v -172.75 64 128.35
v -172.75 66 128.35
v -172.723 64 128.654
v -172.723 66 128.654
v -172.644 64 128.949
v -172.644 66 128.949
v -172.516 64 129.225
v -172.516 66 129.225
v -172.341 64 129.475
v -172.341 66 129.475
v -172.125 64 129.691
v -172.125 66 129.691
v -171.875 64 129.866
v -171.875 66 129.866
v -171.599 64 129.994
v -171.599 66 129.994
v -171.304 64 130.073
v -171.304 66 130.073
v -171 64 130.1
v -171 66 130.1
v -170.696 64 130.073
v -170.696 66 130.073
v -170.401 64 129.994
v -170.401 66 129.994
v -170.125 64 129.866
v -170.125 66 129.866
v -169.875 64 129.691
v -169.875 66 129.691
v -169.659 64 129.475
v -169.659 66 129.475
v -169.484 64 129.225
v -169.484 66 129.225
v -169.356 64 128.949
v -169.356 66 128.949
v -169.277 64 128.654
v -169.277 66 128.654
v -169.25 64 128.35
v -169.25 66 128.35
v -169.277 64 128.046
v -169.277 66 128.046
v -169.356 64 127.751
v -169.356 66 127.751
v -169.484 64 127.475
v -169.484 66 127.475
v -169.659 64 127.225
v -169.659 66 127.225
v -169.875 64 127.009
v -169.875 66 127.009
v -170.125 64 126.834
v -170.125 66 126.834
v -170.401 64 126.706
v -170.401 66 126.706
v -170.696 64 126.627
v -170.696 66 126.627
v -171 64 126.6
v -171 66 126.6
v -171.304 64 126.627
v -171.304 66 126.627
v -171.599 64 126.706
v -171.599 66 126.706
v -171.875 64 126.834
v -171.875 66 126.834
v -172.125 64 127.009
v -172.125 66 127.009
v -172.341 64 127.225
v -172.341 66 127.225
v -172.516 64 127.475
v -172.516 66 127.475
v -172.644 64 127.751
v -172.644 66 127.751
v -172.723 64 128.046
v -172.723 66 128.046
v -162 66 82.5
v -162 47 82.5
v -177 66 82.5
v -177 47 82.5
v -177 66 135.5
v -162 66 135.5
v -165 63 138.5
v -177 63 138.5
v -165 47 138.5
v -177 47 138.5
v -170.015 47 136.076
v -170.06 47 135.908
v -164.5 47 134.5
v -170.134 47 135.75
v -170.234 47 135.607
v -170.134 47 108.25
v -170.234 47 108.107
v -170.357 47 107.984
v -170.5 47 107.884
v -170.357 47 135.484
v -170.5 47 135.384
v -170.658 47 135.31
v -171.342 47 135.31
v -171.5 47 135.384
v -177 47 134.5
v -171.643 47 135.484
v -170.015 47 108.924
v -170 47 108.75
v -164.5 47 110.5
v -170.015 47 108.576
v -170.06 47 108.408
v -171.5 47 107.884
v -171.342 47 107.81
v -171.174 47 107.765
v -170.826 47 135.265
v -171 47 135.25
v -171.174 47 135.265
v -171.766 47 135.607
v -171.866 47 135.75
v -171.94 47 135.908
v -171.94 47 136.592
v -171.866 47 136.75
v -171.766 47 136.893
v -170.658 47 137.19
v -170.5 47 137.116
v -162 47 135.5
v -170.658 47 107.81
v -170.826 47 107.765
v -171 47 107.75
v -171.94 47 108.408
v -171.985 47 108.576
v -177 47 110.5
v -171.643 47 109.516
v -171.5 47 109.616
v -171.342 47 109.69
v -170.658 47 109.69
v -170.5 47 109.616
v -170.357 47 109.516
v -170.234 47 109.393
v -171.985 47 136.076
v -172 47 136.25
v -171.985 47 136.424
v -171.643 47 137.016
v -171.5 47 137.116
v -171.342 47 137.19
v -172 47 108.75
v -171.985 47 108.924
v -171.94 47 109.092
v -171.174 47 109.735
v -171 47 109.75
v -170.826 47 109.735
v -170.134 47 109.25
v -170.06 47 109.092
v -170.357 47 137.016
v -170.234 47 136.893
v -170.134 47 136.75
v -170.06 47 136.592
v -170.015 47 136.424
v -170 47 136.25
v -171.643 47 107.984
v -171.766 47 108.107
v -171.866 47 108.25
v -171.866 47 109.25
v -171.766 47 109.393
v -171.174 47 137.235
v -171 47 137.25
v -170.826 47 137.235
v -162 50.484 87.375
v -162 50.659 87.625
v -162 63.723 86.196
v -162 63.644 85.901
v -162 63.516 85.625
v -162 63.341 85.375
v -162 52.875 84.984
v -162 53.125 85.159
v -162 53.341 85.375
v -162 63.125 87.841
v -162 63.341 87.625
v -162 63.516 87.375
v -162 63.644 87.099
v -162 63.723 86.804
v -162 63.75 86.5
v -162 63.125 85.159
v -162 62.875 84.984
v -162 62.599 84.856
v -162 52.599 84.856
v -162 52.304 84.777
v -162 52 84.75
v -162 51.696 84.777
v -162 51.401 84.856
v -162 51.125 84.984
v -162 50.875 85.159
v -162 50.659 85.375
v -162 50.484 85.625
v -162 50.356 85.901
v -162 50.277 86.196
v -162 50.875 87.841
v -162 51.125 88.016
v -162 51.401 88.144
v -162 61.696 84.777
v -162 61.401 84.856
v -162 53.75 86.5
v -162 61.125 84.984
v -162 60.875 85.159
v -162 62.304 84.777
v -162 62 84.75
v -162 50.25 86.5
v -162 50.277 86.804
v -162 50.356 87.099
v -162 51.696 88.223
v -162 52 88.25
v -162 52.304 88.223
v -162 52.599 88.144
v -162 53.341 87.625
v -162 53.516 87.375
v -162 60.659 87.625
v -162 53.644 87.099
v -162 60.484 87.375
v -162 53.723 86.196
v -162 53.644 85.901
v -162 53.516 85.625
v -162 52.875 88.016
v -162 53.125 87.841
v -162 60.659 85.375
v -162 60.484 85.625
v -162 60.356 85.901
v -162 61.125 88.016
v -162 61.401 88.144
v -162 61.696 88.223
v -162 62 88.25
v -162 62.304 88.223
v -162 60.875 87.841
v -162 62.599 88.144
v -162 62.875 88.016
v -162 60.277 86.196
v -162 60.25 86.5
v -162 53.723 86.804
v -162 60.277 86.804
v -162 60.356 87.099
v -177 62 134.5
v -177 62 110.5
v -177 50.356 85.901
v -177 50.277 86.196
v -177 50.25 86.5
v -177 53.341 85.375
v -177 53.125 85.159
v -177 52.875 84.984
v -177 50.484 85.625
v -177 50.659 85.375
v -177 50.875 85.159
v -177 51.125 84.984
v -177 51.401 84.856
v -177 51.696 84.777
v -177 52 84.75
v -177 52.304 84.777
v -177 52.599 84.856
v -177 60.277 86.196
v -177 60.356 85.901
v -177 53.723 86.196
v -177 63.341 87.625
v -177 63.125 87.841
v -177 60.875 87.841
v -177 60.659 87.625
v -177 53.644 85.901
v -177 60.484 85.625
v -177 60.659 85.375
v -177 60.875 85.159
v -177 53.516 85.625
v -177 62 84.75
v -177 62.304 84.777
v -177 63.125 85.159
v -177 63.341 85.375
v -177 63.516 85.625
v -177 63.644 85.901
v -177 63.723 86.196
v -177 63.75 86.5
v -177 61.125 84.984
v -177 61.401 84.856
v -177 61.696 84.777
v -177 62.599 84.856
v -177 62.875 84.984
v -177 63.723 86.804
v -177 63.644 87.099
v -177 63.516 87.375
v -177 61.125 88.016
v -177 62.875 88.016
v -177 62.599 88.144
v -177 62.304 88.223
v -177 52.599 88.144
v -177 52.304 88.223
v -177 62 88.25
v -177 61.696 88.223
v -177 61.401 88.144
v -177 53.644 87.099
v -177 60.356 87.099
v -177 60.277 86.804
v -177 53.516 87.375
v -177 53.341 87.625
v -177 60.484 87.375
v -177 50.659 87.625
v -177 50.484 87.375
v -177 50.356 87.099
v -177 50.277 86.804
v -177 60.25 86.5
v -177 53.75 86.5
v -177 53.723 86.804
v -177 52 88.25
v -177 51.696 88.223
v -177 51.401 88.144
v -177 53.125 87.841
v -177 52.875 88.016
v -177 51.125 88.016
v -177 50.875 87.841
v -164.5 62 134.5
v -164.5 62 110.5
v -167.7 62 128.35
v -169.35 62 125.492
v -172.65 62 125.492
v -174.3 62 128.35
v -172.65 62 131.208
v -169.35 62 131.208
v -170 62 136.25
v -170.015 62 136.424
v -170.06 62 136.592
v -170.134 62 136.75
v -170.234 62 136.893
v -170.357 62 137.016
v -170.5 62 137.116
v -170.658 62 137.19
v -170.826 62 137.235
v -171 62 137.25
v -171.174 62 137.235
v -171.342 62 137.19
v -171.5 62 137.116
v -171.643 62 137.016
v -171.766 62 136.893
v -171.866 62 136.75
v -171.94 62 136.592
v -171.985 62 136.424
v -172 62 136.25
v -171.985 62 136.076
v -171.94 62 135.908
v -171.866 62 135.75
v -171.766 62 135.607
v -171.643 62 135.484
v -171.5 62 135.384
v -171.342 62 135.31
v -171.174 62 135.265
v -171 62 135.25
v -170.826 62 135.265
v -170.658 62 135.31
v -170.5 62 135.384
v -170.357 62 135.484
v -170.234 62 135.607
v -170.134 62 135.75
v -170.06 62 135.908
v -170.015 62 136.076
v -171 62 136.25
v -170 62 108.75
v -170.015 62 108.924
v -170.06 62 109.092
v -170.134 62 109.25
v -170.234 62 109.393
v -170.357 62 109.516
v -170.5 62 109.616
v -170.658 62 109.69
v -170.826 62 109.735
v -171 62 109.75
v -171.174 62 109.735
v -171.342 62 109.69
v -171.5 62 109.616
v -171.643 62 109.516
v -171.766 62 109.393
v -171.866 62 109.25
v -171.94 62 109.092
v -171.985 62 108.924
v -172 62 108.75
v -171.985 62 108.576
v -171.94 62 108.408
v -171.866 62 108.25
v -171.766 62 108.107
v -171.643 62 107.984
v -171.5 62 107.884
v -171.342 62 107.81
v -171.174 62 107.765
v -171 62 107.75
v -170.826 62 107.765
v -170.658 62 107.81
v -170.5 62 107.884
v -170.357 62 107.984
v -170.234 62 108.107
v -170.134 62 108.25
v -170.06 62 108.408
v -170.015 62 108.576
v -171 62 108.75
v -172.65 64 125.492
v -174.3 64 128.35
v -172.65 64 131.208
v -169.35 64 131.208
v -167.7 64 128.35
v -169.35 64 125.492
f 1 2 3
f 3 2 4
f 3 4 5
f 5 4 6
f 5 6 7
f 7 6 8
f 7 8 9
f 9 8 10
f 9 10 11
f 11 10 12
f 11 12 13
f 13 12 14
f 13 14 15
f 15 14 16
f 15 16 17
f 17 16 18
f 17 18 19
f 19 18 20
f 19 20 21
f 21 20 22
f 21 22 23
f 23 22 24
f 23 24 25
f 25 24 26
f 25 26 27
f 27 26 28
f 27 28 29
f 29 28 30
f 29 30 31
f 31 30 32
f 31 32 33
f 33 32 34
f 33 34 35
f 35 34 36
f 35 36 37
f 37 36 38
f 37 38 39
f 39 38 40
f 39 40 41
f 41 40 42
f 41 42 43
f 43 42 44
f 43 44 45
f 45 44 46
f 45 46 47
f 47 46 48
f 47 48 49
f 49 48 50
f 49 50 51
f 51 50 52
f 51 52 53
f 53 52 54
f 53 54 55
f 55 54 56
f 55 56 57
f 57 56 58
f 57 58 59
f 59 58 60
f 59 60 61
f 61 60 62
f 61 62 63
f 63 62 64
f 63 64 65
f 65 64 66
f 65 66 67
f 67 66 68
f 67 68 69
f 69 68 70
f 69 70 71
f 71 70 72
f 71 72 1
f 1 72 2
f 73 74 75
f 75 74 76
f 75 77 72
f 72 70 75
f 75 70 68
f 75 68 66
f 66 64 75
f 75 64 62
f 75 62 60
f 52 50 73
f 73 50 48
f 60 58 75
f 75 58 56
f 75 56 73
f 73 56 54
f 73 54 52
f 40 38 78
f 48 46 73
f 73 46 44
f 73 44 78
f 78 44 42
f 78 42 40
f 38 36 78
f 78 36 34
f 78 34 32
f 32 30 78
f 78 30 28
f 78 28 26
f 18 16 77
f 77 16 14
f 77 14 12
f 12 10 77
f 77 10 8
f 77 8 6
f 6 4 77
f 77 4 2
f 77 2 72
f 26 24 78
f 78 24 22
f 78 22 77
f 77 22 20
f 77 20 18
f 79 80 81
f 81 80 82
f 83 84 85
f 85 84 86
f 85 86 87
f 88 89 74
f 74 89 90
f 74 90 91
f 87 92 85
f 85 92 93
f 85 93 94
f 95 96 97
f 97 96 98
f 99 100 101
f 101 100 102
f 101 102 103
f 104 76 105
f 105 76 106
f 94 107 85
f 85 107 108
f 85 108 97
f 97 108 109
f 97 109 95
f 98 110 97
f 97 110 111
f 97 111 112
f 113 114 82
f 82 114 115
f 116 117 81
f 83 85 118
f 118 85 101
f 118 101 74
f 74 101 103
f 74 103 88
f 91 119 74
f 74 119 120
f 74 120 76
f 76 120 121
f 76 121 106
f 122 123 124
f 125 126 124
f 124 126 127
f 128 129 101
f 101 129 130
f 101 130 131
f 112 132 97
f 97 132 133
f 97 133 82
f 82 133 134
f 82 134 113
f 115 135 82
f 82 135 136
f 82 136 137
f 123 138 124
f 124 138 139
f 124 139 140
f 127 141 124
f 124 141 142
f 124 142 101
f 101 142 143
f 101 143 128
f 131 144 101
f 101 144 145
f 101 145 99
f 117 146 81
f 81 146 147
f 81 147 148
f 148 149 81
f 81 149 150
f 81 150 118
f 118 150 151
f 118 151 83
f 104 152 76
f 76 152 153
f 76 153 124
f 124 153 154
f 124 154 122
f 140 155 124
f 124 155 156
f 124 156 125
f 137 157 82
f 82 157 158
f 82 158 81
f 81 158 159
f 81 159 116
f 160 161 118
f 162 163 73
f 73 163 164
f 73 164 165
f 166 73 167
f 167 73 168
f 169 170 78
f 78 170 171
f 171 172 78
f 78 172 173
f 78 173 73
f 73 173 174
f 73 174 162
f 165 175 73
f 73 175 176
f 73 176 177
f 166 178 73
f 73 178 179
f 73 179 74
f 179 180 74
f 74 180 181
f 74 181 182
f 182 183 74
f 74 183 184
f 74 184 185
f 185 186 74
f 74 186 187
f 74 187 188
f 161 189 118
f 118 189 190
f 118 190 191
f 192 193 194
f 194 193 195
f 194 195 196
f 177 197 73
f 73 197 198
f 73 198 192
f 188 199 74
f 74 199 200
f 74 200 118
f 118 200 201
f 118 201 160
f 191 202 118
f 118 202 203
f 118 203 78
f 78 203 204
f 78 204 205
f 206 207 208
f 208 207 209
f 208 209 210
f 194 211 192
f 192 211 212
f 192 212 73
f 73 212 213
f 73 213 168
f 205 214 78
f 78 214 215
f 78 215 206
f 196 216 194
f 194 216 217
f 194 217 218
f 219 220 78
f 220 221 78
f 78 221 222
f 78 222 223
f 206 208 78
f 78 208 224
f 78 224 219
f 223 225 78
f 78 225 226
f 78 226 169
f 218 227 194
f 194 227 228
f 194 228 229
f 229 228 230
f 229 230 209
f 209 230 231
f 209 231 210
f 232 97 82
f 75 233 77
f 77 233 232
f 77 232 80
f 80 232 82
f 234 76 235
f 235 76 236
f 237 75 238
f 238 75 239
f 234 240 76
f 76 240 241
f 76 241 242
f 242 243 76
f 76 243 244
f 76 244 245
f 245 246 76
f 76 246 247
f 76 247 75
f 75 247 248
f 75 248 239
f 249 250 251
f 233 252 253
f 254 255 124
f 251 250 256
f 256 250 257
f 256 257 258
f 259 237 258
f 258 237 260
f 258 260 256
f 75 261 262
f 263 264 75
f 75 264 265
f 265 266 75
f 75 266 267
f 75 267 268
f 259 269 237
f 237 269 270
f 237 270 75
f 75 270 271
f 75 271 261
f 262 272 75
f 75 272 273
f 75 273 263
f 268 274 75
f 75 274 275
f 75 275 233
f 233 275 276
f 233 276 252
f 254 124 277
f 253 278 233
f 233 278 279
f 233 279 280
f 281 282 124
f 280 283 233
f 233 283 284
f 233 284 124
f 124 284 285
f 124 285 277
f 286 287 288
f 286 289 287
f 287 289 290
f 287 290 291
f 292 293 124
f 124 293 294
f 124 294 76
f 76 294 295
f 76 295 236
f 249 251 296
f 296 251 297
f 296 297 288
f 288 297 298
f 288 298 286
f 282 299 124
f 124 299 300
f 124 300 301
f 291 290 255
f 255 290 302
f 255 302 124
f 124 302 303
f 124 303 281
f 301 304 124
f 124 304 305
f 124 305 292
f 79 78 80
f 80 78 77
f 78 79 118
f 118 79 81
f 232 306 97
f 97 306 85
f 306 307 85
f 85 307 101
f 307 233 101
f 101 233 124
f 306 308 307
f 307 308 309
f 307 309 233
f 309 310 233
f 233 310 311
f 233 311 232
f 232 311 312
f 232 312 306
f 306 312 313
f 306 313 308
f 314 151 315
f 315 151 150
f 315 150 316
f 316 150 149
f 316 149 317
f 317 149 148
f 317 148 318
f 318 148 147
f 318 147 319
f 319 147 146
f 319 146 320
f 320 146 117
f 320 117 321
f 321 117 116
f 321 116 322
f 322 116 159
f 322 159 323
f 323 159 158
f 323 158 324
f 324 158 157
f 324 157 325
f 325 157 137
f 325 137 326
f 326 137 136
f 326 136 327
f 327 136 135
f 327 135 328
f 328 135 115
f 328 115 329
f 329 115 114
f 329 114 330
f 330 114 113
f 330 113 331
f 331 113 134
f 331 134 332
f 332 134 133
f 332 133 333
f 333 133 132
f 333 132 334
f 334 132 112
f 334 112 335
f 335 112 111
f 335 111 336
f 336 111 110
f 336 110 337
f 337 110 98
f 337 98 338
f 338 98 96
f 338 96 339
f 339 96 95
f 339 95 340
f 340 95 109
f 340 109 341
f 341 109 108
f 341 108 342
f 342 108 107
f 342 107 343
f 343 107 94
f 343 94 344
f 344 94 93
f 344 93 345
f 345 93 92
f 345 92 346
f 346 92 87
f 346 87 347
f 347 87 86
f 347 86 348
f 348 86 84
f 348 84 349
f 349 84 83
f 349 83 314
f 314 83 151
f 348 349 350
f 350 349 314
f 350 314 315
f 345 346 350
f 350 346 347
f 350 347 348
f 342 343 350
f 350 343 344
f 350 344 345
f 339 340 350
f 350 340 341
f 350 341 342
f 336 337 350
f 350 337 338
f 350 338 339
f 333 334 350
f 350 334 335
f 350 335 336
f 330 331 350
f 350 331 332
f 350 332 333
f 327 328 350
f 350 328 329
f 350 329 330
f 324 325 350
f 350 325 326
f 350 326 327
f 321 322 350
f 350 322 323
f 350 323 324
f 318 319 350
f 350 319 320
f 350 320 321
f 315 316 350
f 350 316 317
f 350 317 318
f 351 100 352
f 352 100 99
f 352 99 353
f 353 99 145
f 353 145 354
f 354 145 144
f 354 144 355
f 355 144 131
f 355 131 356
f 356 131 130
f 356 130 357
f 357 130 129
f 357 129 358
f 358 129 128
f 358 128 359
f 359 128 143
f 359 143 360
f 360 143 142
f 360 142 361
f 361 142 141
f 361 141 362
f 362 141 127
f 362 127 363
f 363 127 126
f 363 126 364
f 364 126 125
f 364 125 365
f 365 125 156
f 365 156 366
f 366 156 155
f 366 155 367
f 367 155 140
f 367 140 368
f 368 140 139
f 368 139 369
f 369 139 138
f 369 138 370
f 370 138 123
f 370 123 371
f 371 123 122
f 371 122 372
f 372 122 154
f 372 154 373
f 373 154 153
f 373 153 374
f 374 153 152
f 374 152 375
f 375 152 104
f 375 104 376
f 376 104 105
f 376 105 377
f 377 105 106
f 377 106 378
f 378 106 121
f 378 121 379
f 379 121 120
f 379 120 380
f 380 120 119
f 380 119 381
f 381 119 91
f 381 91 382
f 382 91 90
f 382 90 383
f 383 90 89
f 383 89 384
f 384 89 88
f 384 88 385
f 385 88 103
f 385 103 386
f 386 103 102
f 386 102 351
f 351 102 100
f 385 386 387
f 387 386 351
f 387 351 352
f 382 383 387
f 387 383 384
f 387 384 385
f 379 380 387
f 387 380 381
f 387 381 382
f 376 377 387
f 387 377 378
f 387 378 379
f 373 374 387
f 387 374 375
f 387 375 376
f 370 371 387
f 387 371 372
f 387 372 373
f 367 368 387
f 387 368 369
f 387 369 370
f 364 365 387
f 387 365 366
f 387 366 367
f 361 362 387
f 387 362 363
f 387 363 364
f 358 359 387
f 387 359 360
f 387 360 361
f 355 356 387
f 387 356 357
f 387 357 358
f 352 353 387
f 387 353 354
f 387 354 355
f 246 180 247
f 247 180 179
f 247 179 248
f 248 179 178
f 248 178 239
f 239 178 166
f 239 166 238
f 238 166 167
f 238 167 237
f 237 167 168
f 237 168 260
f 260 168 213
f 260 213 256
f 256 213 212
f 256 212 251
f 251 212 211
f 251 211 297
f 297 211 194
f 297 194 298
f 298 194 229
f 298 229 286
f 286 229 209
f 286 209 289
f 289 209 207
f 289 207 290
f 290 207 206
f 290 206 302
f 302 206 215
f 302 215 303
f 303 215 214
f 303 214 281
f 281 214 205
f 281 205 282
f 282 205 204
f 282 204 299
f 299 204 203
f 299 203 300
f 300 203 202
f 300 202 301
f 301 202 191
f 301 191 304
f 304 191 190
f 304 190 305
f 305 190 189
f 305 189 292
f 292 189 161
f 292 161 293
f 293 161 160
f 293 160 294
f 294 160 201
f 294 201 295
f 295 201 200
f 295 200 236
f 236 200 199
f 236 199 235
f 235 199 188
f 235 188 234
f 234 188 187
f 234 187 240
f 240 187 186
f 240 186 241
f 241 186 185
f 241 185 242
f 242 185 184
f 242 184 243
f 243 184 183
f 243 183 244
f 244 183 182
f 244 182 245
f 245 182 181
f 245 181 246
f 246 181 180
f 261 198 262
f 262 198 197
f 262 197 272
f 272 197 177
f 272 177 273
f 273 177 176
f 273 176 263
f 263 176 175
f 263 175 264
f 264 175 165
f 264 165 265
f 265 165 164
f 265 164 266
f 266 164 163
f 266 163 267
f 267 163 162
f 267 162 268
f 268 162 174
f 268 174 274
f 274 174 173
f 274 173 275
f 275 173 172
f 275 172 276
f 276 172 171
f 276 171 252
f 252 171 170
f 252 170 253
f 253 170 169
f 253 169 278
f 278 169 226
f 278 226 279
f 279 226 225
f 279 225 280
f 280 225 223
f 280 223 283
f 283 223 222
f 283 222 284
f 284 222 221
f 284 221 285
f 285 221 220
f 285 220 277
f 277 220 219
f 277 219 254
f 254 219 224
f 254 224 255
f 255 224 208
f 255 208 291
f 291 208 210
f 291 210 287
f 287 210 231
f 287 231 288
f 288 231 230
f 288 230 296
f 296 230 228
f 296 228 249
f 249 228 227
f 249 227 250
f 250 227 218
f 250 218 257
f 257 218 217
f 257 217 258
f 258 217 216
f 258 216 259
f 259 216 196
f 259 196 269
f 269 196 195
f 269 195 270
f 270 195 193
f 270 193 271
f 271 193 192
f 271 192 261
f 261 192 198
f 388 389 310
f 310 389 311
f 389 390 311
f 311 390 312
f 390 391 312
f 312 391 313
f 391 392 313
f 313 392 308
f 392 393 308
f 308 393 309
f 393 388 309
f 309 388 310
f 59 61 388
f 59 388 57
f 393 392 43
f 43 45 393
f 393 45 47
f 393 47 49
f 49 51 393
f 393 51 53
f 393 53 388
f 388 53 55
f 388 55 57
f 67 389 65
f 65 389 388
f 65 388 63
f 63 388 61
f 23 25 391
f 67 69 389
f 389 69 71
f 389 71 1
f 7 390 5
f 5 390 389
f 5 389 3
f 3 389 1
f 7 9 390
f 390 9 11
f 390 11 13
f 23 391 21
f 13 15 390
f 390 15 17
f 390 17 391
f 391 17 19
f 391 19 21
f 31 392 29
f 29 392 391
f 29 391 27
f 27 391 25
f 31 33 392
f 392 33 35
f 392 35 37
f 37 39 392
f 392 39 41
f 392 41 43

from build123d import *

# Parameters (mm, degrees)
CROQUIS1_W              = 19
CROQUIS1_H              = 56
SALIENTE_EXTRUIR1_DEPTH = 15
CHAFL_N1_SIZE           = 3
CROQUIS2_W              = 12.5
CROQUIS2_H              = 24
CORTAR_EXTRUIR1_DEPTH   = 15
CROQUIS3_R              = 1
CORTAR_EXTRUIR2_DEPTH   = 15
CROQUIS8_R              = 1
CORTAR_EXTRUIR3_DEPTH   = 15
CROQUIS9_R              = 1.75
CORTAR_EXTRUIR4_DEPTH   = 16
CORTAR_EXTRUIR5_REACH   = 17
CROQUIS10_R             = 1.75
CROQUIS11_R             = 1.75
CORTAR_EXTRUIR6_DEPTH   = 20
CROQUIS12_R             = 1.75
CORTAR_EXTRUIR7_DEPTH   = 2


with BuildPart() as part:
    # Croquis1 → Saliente-Extruir1 (new body)
    with BuildSketch(Plane(origin=(-177, 0, 0), x_dir=(0, -1, 0), z_dir=(-1, 0, 0))):
        with Locations((-56.5, 110.5)):
            Rectangle(CROQUIS1_W, CROQUIS1_H)
    extrude(amount=-SALIENTE_EXTRUIR1_DEPTH)

    # Chaflán1
    chafl_n1_edges = [part.edges().sort_by_distance(p)[0] for p in [
        (-162, 56.5, 138.5),
        (-169.5, 66, 138.5),
    ]]
    chamfer(chafl_n1_edges, length=CHAFL_N1_SIZE)

    # Croquis2 → Cortar-Extruir1 (cut)
    with BuildSketch(Plane.XZ.offset(-47)):
        with Locations((-170.75, 122.5)):
            Rectangle(CROQUIS2_W, CROQUIS2_H)
    extrude(amount=-CORTAR_EXTRUIR1_DEPTH, mode=Mode.SUBTRACT)

    # Croquis3 → Cortar-Extruir2 (cut)
    with BuildSketch(Plane.XZ.offset(-47)):
        with Locations((-171, 136.25)):
            Circle(CROQUIS3_R)
    extrude(amount=-CORTAR_EXTRUIR2_DEPTH, mode=Mode.SUBTRACT)

    # Croquis8 → Cortar-Extruir3 (cut)
    with BuildSketch(Plane(origin=(0, 47, 0), x_dir=(-1, 0, 0), z_dir=(0, -1, 0))):
        with Locations((171, -108.75)):
            Circle(CROQUIS8_R)
    extrude(amount=-CORTAR_EXTRUIR3_DEPTH, mode=Mode.SUBTRACT)

    # Croquis9 → Cortar-Extruir4 (cut, through all)
    with BuildSketch(Plane(origin=(-162, 0, 0), x_dir=(0, 0, -1), z_dir=(1, 0, 0))):
        with Locations((-86.5, 52)):
            Circle(CROQUIS9_R)
    extrude(amount=-CORTAR_EXTRUIR4_DEPTH, mode=Mode.SUBTRACT)

    # Croquis10 → Cortar-Extruir5 (cut, up to next)
    with BuildSketch(Plane(origin=(-162, 0, 0), x_dir=(0, 0, -1), z_dir=(1, 0, 0)), mode=Mode.PRIVATE) as cortar_extruir5_sk1:
        with Locations((-86.5, 62)):
            Circle(CROQUIS10_R)
    cortar_extruir5_tool1 = extrude(cortar_extruir5_sk1.sketch, amount=-CORTAR_EXTRUIR5_REACH, mode=Mode.PRIVATE) & part.part
    add(cortar_extruir5_tool1.solids().sort_by_distance((-162, 62, 86.5))[0], mode=Mode.SUBTRACT)

    # Croquis11 → Cortar-Extruir6 (cut, through all)
    with BuildSketch(Plane(origin=(0, 66, 0), x_dir=(-1, 0, 0), z_dir=(0, 1, 0))):
        with Locations((171, 128.35)):
            Circle(CROQUIS11_R)
    extrude(amount=-CORTAR_EXTRUIR6_DEPTH, mode=Mode.SUBTRACT)

    # Croquis12 → Cortar-Extruir7 (cut)
    with BuildSketch(Plane.XZ.offset(-62)):
        Polygon((-172.65, 125.492116168), (-169.35, 125.492116168), (-167.7, 128.35), (-169.35, 131.207883832), (-172.65, 131.207883832), (-174.3, 128.35), align=None)
        with Locations((-171, 128.35)):
            Circle(CROQUIS12_R, mode=Mode.SUBTRACT)
    extrude(amount=-CORTAR_EXTRUIR7_DEPTH, mode=Mode.SUBTRACT)


solid = part.part
